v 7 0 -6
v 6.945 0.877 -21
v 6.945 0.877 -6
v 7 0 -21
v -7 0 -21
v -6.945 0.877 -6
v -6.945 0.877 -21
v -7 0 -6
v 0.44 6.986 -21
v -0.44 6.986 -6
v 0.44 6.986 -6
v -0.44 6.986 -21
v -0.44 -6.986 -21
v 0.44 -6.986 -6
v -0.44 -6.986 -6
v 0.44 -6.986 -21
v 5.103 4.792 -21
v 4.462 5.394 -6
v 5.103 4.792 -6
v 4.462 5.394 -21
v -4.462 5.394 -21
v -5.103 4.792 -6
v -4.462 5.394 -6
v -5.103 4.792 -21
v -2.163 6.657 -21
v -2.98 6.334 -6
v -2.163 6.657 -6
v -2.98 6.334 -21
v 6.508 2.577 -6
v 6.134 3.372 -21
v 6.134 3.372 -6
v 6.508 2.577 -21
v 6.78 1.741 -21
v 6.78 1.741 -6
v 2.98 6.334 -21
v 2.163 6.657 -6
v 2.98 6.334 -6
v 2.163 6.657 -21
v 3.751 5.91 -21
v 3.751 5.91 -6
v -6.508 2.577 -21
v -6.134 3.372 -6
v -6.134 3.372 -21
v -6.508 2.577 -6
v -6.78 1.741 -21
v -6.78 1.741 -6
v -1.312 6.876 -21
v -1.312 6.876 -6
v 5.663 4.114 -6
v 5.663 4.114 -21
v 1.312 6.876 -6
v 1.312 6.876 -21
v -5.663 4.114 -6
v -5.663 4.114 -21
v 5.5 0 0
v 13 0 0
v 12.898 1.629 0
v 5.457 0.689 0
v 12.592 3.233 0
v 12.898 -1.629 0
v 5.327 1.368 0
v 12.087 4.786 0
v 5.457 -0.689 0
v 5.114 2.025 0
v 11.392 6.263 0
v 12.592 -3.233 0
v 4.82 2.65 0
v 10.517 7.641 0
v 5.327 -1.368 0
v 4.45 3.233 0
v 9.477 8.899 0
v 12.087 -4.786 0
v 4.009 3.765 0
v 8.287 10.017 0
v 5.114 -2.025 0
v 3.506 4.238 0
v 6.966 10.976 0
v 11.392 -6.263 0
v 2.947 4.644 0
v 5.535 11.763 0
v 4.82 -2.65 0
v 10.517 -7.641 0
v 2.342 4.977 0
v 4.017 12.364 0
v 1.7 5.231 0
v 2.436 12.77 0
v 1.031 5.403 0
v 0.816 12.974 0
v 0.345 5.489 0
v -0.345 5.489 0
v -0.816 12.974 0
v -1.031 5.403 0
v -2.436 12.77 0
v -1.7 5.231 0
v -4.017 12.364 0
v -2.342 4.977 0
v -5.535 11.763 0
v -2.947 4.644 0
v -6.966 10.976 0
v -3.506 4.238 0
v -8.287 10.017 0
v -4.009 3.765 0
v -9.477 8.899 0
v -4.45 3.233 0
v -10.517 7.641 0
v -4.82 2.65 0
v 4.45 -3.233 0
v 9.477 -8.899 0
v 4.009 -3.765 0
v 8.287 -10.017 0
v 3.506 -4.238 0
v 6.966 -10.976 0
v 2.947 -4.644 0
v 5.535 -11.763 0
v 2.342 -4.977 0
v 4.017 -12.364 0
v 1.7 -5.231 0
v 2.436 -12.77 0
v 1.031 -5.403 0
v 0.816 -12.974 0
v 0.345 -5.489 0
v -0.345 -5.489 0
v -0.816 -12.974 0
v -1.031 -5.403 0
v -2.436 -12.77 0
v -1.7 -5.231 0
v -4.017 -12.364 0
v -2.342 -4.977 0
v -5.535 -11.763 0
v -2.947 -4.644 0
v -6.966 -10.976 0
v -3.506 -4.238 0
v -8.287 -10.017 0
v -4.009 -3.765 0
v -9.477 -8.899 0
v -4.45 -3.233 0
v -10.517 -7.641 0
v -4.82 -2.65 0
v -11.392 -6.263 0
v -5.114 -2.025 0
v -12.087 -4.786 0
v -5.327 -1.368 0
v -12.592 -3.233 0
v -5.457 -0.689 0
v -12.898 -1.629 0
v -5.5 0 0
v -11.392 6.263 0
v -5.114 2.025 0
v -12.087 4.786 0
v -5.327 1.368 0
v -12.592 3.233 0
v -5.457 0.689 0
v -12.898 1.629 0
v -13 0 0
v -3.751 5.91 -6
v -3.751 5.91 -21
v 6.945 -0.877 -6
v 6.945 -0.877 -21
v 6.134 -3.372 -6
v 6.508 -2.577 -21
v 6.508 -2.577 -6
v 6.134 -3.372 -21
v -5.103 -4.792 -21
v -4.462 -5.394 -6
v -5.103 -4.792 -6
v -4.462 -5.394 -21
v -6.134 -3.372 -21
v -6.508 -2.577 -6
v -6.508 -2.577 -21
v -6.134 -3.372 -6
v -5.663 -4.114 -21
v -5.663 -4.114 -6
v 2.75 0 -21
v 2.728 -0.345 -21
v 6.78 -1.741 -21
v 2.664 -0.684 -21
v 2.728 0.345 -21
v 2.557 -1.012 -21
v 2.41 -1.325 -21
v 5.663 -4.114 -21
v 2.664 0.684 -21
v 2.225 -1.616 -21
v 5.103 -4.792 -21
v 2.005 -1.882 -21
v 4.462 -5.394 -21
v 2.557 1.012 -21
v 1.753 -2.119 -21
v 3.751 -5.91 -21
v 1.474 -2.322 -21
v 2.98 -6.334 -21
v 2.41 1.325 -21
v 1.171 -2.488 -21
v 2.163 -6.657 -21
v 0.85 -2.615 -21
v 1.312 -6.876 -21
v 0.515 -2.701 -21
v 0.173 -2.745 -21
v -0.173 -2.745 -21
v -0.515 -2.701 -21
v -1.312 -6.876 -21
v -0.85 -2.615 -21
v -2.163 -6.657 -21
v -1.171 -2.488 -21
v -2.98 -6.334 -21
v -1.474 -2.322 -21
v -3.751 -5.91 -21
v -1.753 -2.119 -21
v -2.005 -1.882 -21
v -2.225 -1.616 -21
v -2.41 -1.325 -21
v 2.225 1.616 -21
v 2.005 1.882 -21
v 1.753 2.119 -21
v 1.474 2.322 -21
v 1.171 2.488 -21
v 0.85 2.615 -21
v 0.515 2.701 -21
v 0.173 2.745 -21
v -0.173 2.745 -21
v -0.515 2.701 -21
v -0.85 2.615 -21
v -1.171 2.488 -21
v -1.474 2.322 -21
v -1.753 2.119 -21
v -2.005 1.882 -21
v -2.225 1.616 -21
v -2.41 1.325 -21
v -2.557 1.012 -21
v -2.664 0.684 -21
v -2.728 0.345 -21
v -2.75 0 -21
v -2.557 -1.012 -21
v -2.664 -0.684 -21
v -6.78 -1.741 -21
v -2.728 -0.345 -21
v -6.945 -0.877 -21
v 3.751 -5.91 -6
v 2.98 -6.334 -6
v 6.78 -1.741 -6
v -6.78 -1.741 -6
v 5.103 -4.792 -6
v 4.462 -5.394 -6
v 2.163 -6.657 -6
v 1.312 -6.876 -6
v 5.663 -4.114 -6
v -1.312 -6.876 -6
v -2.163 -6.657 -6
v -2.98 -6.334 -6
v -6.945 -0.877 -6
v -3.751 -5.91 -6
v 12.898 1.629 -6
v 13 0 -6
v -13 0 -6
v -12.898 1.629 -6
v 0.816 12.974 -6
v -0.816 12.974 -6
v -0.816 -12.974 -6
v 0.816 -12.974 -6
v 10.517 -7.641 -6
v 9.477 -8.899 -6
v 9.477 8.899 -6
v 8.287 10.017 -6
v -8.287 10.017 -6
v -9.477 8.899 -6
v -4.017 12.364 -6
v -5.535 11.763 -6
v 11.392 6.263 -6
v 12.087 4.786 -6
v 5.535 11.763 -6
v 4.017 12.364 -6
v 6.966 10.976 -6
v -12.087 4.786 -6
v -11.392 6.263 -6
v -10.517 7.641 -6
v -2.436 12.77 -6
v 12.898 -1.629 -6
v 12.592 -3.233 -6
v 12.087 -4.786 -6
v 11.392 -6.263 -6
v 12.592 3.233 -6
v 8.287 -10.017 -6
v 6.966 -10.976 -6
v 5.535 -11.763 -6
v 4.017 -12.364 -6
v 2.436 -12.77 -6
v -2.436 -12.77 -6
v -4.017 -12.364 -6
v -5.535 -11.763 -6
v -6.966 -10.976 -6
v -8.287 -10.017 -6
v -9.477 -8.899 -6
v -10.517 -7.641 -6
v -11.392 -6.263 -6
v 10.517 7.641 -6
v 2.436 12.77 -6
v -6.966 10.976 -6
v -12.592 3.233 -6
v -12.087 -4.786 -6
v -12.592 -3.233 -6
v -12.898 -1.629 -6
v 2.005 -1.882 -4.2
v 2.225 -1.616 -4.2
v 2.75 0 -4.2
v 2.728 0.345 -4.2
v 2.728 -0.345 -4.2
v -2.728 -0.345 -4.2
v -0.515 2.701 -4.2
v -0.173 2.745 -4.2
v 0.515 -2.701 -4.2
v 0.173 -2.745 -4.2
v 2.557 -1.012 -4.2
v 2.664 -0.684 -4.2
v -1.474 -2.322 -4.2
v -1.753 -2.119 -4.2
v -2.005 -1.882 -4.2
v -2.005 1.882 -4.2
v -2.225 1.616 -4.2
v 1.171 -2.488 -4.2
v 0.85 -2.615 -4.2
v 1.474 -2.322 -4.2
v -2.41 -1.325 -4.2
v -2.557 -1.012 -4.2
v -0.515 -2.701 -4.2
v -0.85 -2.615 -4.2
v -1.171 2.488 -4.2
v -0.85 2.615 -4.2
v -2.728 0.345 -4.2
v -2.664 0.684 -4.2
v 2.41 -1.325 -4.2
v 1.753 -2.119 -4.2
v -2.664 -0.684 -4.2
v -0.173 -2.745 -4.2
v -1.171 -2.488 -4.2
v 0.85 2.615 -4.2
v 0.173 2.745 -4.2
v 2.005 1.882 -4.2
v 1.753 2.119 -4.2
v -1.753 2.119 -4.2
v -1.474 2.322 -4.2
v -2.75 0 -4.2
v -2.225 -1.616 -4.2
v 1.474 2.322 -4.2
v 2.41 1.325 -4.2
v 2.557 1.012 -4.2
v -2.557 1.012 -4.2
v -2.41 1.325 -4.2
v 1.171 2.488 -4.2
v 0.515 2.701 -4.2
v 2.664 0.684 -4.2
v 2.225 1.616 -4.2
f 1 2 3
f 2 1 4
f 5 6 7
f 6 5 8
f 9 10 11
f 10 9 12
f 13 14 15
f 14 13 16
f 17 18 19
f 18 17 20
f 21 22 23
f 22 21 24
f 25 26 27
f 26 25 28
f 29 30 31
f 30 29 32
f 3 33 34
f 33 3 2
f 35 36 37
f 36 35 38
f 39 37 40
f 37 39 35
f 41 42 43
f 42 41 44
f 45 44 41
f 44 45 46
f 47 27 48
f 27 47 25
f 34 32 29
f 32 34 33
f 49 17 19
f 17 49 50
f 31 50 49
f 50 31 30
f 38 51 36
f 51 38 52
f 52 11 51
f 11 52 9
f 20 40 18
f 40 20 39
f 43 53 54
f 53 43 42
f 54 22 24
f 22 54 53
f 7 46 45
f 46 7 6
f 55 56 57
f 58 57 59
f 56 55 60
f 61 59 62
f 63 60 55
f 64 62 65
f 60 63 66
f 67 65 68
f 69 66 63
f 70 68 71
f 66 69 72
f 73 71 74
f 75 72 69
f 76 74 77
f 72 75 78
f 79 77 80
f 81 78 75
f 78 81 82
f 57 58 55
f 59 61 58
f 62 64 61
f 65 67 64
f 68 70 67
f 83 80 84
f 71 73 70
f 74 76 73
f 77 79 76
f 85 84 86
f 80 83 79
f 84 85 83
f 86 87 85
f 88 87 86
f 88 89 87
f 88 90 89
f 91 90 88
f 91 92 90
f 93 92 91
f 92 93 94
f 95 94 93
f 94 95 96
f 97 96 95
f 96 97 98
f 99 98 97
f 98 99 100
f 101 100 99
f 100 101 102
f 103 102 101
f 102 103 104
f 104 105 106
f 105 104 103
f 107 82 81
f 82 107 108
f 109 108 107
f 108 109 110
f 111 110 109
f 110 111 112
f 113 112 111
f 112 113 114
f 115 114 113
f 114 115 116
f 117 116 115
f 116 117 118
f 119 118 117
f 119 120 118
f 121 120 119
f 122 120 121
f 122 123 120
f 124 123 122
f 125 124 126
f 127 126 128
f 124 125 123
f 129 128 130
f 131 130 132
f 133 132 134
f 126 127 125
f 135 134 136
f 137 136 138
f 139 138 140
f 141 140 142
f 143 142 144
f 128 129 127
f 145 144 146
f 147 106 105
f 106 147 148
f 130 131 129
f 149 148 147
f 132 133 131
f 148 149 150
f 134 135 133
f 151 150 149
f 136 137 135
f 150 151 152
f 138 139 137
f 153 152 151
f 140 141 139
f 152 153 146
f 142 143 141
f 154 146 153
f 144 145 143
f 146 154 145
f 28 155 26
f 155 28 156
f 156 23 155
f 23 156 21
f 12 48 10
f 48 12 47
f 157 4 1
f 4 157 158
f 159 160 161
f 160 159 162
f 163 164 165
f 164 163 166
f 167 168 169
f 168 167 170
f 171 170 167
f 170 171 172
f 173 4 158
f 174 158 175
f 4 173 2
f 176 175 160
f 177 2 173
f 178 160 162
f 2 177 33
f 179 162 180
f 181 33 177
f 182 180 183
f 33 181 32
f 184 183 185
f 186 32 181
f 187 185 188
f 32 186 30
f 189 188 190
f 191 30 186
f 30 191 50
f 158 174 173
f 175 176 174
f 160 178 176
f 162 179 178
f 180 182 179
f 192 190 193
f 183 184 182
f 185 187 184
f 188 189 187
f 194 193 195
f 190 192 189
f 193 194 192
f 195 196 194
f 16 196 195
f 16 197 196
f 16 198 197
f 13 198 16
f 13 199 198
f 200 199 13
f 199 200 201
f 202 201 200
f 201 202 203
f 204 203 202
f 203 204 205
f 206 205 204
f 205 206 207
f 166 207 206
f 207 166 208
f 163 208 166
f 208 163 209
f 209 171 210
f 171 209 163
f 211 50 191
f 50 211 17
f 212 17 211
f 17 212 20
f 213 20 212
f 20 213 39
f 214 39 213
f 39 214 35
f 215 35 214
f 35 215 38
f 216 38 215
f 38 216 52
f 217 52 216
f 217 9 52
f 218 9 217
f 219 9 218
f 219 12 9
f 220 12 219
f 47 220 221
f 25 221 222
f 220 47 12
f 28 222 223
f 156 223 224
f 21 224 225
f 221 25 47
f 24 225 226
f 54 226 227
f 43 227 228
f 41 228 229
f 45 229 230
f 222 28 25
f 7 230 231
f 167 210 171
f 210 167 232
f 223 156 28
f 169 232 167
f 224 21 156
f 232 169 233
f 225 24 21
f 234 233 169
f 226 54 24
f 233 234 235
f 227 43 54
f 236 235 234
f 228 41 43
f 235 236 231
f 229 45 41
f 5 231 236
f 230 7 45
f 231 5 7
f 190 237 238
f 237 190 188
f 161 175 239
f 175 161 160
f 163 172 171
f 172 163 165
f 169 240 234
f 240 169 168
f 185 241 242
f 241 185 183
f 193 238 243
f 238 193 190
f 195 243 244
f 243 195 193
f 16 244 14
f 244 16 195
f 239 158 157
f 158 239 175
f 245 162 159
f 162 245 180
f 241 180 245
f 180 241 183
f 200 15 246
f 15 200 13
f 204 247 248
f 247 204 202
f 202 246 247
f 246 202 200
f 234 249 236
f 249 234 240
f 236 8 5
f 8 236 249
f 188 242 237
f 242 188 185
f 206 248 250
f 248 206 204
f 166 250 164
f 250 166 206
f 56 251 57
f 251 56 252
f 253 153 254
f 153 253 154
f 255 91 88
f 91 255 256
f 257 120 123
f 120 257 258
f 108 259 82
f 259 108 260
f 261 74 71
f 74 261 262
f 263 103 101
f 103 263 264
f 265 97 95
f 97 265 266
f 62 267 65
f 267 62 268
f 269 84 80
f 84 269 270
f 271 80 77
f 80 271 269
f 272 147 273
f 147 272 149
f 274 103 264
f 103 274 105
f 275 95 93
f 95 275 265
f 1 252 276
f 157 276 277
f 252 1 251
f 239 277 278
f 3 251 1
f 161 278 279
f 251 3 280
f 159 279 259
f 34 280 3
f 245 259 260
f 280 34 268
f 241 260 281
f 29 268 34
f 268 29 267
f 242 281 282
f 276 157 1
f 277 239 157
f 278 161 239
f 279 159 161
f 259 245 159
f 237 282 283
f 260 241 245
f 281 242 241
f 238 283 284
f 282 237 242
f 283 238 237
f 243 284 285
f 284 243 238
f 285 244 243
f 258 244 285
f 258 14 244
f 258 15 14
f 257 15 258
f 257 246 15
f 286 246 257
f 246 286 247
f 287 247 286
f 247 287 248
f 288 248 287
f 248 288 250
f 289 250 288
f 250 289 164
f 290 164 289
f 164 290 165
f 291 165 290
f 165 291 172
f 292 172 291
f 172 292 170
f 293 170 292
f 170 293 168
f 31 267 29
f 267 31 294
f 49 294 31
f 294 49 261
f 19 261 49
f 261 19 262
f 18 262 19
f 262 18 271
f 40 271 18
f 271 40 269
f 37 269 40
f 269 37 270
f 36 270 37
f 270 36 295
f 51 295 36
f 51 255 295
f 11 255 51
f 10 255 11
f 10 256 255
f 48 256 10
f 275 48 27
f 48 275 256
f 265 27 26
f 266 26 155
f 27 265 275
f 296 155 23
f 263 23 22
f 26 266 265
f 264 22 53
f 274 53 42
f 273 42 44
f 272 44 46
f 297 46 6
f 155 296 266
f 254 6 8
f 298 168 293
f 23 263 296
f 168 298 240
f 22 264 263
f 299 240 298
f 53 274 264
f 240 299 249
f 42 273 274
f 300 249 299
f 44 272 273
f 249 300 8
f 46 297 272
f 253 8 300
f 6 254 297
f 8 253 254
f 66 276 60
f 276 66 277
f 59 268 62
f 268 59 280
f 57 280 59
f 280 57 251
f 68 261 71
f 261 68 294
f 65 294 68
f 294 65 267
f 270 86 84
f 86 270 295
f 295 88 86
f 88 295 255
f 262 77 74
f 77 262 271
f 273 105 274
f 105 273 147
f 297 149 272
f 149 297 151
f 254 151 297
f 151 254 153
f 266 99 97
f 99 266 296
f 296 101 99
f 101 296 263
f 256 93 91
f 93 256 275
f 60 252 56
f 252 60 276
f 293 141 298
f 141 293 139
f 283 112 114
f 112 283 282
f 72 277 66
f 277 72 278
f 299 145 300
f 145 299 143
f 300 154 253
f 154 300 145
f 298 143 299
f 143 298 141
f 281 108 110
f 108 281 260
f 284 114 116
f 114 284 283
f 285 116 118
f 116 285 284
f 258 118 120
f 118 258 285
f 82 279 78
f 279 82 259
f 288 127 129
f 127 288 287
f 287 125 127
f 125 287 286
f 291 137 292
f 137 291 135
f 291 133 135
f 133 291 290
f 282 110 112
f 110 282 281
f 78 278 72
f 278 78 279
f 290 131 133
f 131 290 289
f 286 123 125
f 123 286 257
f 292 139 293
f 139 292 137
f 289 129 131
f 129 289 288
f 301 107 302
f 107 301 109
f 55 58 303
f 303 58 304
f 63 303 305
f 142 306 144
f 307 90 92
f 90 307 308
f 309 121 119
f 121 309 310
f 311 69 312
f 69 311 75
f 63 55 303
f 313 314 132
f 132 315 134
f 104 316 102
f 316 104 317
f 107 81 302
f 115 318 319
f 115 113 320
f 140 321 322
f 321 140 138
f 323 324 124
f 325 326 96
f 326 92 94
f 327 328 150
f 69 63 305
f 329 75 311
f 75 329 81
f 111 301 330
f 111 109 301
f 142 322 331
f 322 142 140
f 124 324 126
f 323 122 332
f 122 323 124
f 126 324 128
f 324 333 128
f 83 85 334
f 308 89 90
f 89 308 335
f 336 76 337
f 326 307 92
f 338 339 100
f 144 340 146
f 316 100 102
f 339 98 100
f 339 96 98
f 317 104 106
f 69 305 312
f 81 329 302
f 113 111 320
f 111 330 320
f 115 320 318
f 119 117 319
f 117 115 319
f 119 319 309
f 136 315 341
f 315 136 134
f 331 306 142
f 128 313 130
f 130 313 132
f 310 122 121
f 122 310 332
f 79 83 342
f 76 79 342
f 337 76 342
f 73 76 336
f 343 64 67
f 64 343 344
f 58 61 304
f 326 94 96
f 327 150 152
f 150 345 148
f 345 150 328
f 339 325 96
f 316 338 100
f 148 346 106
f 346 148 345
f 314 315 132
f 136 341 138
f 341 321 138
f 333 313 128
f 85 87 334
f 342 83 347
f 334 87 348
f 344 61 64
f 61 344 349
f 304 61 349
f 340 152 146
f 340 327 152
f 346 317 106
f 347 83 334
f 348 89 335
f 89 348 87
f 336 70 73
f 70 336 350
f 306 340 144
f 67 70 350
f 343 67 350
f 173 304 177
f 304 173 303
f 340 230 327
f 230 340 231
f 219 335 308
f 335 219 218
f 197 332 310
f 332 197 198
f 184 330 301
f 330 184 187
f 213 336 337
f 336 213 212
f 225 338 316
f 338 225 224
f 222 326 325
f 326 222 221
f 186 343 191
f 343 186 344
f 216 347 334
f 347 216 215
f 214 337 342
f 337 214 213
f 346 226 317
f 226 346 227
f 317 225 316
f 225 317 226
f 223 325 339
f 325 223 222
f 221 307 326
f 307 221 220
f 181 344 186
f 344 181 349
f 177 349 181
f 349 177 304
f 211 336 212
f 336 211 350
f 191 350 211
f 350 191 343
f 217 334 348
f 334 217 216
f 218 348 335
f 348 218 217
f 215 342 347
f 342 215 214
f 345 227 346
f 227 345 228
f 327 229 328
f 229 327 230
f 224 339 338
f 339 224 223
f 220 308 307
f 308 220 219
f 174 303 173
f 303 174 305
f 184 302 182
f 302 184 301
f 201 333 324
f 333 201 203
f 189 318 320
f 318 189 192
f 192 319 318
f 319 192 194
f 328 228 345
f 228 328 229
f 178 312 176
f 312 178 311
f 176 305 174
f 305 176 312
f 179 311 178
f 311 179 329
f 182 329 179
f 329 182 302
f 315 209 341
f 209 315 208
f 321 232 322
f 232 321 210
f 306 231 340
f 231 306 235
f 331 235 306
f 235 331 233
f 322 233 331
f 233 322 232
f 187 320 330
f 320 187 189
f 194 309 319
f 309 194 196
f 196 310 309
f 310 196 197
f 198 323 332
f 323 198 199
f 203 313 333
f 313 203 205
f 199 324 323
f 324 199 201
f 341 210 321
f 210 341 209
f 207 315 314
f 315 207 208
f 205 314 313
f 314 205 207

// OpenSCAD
$fn = 50;


difference() {
	union() {
		translate(v = [0, 0, -21.0000000000]) {
			cylinder(h = 21, r = 7.0000000000);
		}
		translate(v = [0, 0, -6.0000000000]) {
			cylinder(h = 6, r = 13.0000000000);
		}
	}
	union() {
		translate(v = [0, 0, 0]) {
			rotate(a = [0, 0, 0]) {
				difference() {
					union() {
						#translate(v = [0, 0, -21.0000000000]) {
							cylinder(h = 21, r = 2.2500000000);
						}
						#translate(v = [0, 0, -4.2000000000]) {
							cylinder(h = 4.2000000000, r1 = 2.7500000000, r2 = 5.5000000000);
						}
						#translate(v = [0, 0, -21.0000000000]) {
							cylinder(h = 21, r = 2.7500000000);
						}
						#translate(v = [0, 0, -21.0000000000]) {
							cylinder(h = 21, r = 2.2500000000);
						}
					}
					union();
				}
			}
		}
	}
}
